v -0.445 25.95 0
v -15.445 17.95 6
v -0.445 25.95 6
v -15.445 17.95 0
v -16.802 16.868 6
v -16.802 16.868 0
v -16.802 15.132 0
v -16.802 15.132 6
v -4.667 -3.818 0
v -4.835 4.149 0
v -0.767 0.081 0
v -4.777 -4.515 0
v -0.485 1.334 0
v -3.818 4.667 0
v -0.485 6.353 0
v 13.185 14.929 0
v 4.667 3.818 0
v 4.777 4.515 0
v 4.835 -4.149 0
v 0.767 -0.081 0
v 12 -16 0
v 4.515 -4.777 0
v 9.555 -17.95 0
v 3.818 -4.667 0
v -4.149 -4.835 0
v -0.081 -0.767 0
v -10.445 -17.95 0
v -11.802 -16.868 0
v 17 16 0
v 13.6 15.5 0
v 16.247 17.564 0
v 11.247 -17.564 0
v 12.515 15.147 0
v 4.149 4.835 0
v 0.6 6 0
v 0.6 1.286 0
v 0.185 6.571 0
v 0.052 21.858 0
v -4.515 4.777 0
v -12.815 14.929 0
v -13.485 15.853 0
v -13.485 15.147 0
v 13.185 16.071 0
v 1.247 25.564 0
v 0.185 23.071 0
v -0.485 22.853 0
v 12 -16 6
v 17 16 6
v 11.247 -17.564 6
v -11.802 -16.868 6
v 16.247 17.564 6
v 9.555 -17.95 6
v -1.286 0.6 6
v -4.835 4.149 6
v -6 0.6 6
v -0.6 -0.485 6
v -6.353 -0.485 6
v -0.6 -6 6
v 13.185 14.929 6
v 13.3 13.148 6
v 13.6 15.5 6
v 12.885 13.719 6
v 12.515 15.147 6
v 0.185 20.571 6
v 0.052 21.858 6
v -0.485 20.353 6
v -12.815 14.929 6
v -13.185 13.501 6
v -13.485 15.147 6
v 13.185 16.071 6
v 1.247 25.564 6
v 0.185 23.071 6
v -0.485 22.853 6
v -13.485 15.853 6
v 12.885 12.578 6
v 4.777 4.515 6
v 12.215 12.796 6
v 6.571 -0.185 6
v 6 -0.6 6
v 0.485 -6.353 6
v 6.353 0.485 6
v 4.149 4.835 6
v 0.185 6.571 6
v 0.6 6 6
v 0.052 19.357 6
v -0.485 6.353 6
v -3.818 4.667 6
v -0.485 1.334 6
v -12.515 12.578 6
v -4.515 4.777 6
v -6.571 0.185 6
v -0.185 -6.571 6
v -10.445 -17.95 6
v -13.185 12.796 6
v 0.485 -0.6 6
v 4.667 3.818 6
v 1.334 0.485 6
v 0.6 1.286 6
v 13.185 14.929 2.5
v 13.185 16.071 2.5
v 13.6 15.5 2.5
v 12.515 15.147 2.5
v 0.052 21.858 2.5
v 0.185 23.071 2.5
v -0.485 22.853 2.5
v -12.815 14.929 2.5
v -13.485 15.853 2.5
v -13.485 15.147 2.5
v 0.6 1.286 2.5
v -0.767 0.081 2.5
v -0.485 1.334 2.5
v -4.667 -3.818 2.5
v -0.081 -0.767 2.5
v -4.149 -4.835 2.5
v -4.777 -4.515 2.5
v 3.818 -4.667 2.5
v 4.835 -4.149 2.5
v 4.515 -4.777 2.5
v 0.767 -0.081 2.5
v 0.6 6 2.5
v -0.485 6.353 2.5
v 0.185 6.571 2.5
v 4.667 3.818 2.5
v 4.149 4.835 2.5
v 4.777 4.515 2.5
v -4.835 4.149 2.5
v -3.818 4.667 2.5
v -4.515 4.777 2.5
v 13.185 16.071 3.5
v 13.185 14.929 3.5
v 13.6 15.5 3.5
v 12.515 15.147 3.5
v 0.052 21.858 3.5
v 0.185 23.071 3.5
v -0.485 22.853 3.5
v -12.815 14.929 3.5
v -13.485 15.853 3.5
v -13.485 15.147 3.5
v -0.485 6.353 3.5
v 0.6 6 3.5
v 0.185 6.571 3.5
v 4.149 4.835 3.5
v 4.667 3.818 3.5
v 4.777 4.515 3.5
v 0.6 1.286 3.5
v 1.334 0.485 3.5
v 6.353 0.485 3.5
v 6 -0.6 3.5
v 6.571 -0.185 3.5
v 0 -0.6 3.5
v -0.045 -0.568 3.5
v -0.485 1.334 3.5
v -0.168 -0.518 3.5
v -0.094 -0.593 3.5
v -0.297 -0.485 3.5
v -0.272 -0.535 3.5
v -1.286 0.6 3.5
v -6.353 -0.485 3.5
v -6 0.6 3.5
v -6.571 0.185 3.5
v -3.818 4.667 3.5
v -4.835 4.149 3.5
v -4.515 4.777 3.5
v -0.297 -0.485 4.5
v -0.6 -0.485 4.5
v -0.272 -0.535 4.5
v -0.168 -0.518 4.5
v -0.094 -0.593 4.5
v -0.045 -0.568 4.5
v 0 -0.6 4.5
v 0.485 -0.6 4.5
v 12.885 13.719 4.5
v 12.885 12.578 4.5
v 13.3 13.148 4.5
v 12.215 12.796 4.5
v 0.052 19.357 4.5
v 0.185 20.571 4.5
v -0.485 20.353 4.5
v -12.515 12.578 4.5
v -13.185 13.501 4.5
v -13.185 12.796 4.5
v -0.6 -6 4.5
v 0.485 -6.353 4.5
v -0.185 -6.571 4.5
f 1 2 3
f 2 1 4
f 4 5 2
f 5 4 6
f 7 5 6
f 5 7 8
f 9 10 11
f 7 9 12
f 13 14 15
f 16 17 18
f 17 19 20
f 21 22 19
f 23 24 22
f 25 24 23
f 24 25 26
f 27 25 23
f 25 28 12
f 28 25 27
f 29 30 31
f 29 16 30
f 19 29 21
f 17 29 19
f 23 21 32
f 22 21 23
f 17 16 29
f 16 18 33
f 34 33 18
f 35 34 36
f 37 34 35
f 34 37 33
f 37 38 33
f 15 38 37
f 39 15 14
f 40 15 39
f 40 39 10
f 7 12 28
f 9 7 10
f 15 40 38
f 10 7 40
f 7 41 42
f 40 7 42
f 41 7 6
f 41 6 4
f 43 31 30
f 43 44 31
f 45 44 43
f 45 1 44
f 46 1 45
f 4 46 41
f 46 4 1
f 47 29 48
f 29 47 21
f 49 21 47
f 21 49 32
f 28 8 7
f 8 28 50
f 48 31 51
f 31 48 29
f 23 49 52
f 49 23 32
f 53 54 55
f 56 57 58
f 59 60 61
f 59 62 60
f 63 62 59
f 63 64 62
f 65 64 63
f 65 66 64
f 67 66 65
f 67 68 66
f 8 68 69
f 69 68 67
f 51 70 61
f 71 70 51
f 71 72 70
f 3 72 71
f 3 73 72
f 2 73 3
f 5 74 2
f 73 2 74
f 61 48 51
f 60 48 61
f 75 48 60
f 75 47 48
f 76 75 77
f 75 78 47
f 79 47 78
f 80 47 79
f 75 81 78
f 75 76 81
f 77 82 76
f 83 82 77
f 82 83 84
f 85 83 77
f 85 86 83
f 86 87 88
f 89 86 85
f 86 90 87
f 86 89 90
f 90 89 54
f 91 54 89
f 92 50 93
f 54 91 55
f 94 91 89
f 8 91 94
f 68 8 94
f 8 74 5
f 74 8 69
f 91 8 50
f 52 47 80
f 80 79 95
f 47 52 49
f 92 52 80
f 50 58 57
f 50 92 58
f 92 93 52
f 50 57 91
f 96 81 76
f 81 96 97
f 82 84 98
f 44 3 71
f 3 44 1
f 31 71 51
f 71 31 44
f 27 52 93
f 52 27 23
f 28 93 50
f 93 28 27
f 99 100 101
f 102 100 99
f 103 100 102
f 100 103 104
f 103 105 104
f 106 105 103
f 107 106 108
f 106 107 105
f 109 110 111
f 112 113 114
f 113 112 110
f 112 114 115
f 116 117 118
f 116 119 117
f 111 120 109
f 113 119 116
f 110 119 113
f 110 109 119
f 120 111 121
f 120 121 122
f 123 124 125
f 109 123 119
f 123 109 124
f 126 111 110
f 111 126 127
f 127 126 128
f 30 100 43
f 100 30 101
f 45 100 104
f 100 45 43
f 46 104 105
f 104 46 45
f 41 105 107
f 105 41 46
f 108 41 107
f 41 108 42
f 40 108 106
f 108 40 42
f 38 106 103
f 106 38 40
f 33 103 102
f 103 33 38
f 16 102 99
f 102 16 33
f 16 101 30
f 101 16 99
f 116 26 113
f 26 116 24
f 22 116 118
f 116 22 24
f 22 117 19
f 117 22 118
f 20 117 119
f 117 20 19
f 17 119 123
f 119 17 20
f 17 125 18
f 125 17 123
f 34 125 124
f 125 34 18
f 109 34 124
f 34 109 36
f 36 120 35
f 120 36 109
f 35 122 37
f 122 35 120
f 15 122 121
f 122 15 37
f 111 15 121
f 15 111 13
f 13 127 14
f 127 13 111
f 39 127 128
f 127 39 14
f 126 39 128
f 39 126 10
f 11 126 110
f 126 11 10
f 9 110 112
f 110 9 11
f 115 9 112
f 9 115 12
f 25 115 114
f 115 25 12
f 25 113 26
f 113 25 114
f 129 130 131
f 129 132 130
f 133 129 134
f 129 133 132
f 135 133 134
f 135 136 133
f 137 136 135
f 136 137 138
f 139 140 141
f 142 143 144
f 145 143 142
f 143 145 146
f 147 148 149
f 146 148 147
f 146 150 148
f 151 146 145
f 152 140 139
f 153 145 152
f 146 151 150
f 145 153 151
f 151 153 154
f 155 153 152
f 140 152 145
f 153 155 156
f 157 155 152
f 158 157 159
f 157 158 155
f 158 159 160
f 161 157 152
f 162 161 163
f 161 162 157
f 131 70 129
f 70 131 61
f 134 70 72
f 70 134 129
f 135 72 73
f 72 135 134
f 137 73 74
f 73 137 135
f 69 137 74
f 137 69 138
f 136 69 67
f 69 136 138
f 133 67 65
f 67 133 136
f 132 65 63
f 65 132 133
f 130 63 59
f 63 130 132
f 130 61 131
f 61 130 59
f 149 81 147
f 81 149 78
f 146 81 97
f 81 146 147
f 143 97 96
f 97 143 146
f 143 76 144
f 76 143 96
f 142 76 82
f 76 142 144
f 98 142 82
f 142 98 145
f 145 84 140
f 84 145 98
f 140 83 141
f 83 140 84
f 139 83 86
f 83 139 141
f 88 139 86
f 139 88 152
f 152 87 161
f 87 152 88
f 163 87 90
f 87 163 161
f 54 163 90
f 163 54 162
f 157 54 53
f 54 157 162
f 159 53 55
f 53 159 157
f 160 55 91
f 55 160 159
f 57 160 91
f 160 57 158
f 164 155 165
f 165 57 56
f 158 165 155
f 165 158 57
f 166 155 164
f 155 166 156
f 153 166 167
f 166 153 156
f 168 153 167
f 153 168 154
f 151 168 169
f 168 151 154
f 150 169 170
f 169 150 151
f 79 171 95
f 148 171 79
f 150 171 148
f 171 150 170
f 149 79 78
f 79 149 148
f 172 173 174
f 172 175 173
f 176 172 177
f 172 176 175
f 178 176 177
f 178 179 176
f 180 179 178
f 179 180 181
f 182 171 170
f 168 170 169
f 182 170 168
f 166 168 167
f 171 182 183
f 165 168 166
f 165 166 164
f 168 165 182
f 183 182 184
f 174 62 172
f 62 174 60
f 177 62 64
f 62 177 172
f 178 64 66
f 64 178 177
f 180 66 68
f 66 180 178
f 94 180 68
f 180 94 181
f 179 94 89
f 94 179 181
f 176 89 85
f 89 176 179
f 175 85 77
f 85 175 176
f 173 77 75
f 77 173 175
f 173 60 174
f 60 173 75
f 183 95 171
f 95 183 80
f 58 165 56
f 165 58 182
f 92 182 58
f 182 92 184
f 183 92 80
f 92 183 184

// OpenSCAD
// file: moves/step.scad
module shogi_move_step(edges=[0], length=6, thick=0.6) {
    for (a=edges) {
        rotate(a=a*45) hull() {
            circle(thick);
            translate([0, length, 0]) circle(thick);
        }
    }
}
// file: ranks/rank2.scad
module shogi_rank_2(thick=0.6) {
    hull() {
        translate([-12.7, 13.148182, 0]) circle(thick);
        translate([0, 20, 0]) circle(thick);
    }

    hull() {
        translate([0, 20, 0]) circle(thick);
        translate([12.7, 13.148182, 0]) circle(thick);
    }
}
// file: ranks/rank1.scad
module shogi_rank_1(thick=0.6) {
    hull() {
        translate([-13, 15.5, 0]) circle(thick);
        translate([0, 22.5, 0]) circle(thick);
    }

    hull() {
        translate([0, 22.5, 0]) circle(thick);
        translate([13, 15.5, 0]) circle(thick);
    }
}
// file: koma/slim.scad
module shogi_koma_slim(width=30, length=40, rounding=2) {
    points=[
        [width/6 , 0],
        [0, length*0.8],
        [width/2, length],
        [width, length*0.8],
        [5*width/6, 0]
    ];

    minkowski() {
        polygon(points);
        circle(rounding);
    }
}
// file: base/piece.scad
module shogi_piece(thick=6) {
    unit=thick/12;

    difference() {
        translate([-15, -16, 0])
        linear_extrude(thick) children(0);
        translate([0, 0, -1*unit]) linear_extrude(6*unit) children(1);
        translate([0, 0, 7*unit]) linear_extrude(6*unit) children(2);
        translate([0, 0, 9*unit]) linear_extrude(6*unit) children(3);
    }
}
// main file
use <base/piece.scad>;
use <koma/slim.scad>;
use <ranks/rank1.scad>;
use <ranks/rank2.scad>;
use <moves/step.scad>;

shogi_piece() {
    shogi_koma_slim();
    union() {
        shogi_rank_1();
        shogi_move_step(edges=[0, 1, 3, 5, 7]);
    }
    union() {
        shogi_rank_1();
        shogi_move_step(edges=[0, 1, 2, 6, 7]);
    }
    union() {
        shogi_rank_2();
        shogi_move_step(edges=[4]);
    }
}
